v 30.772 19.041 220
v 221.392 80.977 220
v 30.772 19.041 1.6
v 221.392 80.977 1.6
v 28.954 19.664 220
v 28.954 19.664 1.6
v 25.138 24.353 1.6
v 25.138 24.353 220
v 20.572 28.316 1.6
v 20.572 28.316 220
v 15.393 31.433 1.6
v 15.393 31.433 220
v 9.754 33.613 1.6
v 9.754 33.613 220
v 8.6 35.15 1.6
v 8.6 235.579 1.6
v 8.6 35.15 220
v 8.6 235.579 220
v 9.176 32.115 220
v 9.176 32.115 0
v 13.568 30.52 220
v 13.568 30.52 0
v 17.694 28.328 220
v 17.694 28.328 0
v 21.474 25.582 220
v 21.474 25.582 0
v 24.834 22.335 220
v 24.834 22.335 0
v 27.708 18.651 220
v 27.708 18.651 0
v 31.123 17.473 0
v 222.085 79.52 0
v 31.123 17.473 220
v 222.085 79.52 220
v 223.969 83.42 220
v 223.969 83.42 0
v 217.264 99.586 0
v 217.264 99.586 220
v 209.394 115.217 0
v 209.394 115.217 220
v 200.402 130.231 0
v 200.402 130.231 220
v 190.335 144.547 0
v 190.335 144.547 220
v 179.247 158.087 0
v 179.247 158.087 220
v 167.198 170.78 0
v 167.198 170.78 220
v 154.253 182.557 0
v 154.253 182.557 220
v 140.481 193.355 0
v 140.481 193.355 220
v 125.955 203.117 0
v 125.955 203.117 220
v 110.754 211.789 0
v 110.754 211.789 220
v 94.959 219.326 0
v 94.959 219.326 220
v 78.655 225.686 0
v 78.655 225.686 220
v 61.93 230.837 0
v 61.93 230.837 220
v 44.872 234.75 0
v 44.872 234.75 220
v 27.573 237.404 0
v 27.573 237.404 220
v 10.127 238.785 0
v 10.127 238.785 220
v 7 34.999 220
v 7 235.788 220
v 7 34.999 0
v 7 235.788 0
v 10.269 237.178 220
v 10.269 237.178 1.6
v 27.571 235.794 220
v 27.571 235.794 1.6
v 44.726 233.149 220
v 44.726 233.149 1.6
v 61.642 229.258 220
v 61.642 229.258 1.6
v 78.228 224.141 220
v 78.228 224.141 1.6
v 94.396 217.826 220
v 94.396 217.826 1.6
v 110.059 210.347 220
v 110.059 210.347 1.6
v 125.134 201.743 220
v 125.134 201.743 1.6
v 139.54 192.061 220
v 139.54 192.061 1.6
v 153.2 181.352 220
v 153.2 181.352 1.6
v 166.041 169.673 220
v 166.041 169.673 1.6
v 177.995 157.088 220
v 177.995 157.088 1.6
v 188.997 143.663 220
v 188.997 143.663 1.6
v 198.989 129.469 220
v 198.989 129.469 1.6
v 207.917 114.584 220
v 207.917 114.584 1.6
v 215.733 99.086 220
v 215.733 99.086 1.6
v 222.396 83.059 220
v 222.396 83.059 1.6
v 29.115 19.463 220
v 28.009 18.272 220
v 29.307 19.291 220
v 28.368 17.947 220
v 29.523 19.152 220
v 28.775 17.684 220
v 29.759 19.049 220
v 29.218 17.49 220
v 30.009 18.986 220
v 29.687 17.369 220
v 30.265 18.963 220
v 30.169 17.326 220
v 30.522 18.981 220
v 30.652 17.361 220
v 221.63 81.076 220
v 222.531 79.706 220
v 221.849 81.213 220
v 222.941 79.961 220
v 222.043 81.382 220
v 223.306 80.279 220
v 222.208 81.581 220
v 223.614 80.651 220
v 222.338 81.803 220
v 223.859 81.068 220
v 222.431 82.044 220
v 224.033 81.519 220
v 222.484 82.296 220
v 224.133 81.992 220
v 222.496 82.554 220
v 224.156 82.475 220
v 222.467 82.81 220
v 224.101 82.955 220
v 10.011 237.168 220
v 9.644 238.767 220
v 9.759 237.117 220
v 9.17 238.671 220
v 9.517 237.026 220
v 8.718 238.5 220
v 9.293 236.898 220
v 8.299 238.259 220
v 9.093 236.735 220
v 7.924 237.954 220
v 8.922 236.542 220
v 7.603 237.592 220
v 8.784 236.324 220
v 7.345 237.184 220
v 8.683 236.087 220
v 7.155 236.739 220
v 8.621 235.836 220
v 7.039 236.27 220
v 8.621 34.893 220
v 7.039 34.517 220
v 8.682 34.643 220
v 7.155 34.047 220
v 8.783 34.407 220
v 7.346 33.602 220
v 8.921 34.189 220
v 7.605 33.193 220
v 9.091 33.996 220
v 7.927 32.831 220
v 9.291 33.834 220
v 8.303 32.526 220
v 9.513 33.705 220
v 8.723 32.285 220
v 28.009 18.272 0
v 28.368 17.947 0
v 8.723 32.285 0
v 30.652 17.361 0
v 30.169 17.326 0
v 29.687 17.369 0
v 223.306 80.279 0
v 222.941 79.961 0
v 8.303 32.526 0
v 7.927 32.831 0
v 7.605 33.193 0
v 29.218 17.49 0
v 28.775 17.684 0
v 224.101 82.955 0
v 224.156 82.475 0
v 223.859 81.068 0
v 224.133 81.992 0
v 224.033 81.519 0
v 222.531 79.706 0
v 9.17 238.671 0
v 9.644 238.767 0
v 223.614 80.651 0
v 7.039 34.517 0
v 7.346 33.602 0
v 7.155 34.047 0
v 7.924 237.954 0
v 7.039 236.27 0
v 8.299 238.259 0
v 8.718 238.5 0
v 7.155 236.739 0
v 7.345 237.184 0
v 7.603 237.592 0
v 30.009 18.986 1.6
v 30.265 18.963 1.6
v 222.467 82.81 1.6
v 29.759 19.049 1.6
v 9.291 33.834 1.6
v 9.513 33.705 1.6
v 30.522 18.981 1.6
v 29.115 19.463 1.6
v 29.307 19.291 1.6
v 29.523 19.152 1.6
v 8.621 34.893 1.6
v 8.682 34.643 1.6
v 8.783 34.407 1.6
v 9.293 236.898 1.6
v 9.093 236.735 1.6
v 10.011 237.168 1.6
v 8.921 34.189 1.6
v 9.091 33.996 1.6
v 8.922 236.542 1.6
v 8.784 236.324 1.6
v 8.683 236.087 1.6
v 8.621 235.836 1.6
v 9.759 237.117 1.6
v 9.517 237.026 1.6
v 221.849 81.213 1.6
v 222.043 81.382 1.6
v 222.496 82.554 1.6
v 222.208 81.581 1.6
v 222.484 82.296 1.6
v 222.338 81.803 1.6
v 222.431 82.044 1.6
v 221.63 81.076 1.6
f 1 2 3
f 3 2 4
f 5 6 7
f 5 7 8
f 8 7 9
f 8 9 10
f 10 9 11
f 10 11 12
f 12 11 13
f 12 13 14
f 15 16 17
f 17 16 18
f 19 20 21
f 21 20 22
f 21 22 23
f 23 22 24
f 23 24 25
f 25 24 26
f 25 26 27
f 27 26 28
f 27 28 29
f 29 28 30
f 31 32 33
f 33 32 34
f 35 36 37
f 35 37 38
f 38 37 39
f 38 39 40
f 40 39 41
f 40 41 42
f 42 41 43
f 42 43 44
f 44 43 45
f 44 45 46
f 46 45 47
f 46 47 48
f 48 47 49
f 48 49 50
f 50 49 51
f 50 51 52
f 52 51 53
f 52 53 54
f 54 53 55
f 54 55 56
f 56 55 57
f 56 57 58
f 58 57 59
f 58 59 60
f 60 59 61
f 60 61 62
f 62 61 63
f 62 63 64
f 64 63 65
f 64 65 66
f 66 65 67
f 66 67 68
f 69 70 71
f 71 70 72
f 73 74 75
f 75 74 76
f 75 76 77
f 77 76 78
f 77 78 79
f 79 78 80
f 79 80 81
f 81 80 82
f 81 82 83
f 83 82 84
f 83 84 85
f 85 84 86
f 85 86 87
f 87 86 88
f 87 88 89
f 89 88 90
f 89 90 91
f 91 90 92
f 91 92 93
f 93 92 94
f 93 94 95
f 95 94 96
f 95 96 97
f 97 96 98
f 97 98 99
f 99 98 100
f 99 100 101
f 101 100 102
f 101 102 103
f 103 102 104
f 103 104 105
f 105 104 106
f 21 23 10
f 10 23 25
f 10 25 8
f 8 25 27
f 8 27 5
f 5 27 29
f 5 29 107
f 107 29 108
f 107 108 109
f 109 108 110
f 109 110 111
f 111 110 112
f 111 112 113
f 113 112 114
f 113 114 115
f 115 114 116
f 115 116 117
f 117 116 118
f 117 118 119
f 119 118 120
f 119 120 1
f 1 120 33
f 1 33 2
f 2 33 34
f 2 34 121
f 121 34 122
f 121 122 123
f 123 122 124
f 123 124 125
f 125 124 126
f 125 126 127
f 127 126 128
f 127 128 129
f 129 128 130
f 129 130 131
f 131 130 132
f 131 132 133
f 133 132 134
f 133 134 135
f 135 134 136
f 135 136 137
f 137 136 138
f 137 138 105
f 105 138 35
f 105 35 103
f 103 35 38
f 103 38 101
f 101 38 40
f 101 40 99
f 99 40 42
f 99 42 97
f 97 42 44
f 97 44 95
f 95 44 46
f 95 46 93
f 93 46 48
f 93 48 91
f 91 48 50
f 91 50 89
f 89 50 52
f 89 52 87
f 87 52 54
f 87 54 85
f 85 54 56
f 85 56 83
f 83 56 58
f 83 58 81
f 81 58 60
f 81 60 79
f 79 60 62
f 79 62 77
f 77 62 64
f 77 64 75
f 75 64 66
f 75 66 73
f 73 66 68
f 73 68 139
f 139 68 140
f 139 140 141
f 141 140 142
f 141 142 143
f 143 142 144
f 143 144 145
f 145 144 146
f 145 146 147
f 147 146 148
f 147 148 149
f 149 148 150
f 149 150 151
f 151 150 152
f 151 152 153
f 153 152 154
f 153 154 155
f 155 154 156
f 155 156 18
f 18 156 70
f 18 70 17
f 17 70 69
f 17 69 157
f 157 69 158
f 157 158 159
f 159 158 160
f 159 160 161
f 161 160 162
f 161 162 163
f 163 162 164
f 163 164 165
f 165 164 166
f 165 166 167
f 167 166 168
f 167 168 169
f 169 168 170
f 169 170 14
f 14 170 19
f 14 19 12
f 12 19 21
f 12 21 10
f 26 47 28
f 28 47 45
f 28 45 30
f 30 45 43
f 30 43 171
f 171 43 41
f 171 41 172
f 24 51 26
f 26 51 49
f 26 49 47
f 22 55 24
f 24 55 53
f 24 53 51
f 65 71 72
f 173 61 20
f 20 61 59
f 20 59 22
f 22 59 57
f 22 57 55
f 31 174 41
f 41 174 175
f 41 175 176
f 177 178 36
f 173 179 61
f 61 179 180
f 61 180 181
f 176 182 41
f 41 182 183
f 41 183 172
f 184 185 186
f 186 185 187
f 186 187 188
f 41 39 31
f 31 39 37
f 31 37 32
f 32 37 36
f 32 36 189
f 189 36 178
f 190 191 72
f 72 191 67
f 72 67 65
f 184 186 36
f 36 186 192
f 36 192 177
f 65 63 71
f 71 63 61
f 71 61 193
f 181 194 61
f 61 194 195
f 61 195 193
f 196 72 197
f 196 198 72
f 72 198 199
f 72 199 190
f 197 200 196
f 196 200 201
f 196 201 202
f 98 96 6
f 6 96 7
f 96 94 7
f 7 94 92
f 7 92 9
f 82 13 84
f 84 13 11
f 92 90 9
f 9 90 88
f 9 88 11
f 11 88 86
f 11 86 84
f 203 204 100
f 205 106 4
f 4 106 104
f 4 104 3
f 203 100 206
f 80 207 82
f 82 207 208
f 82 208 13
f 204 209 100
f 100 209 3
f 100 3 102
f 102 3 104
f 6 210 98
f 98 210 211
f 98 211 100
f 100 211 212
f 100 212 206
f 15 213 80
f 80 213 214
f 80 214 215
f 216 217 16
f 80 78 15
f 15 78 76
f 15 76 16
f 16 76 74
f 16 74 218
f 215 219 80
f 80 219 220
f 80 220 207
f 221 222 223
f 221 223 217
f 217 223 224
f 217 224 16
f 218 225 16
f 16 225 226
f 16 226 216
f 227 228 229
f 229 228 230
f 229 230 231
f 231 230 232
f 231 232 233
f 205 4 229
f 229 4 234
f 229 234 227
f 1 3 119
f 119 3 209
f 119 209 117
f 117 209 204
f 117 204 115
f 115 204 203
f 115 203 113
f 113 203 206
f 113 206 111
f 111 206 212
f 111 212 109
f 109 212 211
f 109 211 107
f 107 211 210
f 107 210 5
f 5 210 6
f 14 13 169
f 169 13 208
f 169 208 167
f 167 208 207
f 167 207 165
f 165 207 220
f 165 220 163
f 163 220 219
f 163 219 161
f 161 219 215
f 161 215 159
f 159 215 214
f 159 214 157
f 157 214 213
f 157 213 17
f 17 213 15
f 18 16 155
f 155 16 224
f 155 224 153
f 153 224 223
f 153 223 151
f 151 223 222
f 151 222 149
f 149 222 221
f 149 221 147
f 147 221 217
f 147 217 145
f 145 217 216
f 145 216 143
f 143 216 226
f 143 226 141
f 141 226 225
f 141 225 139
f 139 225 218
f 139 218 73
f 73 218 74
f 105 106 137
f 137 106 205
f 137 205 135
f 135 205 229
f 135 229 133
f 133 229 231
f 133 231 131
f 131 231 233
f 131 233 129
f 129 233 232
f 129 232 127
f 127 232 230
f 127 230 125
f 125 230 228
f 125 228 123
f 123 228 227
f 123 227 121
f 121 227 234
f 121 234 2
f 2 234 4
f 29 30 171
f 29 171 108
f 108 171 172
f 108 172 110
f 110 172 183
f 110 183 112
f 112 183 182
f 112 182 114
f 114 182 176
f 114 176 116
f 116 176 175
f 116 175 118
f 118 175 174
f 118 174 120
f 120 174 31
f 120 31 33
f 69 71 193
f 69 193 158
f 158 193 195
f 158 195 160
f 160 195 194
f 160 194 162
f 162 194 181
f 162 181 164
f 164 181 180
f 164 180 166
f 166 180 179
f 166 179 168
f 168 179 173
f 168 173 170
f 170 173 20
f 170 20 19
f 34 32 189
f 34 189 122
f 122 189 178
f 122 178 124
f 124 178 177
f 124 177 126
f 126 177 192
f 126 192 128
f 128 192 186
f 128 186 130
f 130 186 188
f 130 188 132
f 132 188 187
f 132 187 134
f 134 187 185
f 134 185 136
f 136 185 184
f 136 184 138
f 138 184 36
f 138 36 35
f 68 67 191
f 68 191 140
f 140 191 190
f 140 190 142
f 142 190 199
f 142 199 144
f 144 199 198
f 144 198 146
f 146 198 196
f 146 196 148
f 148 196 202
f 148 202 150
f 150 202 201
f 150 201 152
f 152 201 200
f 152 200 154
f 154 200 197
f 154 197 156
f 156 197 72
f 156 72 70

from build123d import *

# Parameters (mm, degrees)
EXTRUDE_1_DEPTH = 220
EXTRUDE_2_DEPTH = 1.6
FILLET_1_R      = 1.6
FILLET_2_R      = 3


with BuildPart() as part:
    # 스케치1 → 보스-돌출1 (new body)
    with BuildSketch(Plane.XY):
        with BuildLine():
            Line((7, 238.897467546), (7, 32.658230203))
            ThreePointArc((7, 32.658230203), (19.632027427, 27.021167612), (28.896703685, 16.749343753))
            Line((28.896703685, 16.749343753), (225.041874276, 80.480772999))
            ThreePointArc((225.041874276, 80.480772999), (140.480675298, 193.355061656), (7, 238.897467546))
        make_face()
        with BuildLine():
            ThreePointArc((8.6, 237.244178011), (139.540218894, 192.060634465), (222.975075299, 81.491568862))
            Line((222.975075299, 81.491568862), (29.608929649, 18.663099556))
            ThreePointArc((29.608929649, 18.663099556), (20.57248383, 28.315594803), (8.6, 33.926980414))
            Line((8.6, 33.926980414), (8.6, 237.244178011))
        make_face(mode=Mode.SUBTRACT)
    extrude(amount=EXTRUDE_1_DEPTH)

    # 스케치1<3> → 보스-돌출2 (add)
    with BuildSketch(Plane.XY):
        with BuildLine():
            ThreePointArc((222.975075299, 81.491568862), (139.540218894, 192.060634465), (8.6, 237.244178011))
            Line((8.6, 237.244178011), (8.6, 33.926980414))
            ThreePointArc((8.6, 33.926980414), (20.57248383, 28.315594803), (29.608929649, 18.663099556))
            Line((29.608929649, 18.663099556), (222.975075299, 81.491568862))
        make_face()
    extrude(amount=EXTRUDE_2_DEPTH)

    # 필렛1
    fillet_1_edges = [part.edges().sort_by_distance(p)[0] for p in [
        (29.608929649, 18.663099556, 110.8),
        (8.6, 33.926980414, 110.8),
        (8.6, 237.244178011, 110.8),
        (222.975075299, 81.491568862, 110.8),
    ]]
    fillet(fillet_1_edges, radius=FILLET_1_R)

    # 필렛2
    fillet_2_edges = [part.edges().sort_by_distance(p)[0] for p in [
        (28.896703685, 16.749343753, 110),
        (7, 32.658230203, 110),
        (225.041874276, 80.480772999, 110),
        (7, 238.897467546, 110),
    ]]
    fillet(fillet_2_edges, radius=FILLET_2_R)


solid = part.part
